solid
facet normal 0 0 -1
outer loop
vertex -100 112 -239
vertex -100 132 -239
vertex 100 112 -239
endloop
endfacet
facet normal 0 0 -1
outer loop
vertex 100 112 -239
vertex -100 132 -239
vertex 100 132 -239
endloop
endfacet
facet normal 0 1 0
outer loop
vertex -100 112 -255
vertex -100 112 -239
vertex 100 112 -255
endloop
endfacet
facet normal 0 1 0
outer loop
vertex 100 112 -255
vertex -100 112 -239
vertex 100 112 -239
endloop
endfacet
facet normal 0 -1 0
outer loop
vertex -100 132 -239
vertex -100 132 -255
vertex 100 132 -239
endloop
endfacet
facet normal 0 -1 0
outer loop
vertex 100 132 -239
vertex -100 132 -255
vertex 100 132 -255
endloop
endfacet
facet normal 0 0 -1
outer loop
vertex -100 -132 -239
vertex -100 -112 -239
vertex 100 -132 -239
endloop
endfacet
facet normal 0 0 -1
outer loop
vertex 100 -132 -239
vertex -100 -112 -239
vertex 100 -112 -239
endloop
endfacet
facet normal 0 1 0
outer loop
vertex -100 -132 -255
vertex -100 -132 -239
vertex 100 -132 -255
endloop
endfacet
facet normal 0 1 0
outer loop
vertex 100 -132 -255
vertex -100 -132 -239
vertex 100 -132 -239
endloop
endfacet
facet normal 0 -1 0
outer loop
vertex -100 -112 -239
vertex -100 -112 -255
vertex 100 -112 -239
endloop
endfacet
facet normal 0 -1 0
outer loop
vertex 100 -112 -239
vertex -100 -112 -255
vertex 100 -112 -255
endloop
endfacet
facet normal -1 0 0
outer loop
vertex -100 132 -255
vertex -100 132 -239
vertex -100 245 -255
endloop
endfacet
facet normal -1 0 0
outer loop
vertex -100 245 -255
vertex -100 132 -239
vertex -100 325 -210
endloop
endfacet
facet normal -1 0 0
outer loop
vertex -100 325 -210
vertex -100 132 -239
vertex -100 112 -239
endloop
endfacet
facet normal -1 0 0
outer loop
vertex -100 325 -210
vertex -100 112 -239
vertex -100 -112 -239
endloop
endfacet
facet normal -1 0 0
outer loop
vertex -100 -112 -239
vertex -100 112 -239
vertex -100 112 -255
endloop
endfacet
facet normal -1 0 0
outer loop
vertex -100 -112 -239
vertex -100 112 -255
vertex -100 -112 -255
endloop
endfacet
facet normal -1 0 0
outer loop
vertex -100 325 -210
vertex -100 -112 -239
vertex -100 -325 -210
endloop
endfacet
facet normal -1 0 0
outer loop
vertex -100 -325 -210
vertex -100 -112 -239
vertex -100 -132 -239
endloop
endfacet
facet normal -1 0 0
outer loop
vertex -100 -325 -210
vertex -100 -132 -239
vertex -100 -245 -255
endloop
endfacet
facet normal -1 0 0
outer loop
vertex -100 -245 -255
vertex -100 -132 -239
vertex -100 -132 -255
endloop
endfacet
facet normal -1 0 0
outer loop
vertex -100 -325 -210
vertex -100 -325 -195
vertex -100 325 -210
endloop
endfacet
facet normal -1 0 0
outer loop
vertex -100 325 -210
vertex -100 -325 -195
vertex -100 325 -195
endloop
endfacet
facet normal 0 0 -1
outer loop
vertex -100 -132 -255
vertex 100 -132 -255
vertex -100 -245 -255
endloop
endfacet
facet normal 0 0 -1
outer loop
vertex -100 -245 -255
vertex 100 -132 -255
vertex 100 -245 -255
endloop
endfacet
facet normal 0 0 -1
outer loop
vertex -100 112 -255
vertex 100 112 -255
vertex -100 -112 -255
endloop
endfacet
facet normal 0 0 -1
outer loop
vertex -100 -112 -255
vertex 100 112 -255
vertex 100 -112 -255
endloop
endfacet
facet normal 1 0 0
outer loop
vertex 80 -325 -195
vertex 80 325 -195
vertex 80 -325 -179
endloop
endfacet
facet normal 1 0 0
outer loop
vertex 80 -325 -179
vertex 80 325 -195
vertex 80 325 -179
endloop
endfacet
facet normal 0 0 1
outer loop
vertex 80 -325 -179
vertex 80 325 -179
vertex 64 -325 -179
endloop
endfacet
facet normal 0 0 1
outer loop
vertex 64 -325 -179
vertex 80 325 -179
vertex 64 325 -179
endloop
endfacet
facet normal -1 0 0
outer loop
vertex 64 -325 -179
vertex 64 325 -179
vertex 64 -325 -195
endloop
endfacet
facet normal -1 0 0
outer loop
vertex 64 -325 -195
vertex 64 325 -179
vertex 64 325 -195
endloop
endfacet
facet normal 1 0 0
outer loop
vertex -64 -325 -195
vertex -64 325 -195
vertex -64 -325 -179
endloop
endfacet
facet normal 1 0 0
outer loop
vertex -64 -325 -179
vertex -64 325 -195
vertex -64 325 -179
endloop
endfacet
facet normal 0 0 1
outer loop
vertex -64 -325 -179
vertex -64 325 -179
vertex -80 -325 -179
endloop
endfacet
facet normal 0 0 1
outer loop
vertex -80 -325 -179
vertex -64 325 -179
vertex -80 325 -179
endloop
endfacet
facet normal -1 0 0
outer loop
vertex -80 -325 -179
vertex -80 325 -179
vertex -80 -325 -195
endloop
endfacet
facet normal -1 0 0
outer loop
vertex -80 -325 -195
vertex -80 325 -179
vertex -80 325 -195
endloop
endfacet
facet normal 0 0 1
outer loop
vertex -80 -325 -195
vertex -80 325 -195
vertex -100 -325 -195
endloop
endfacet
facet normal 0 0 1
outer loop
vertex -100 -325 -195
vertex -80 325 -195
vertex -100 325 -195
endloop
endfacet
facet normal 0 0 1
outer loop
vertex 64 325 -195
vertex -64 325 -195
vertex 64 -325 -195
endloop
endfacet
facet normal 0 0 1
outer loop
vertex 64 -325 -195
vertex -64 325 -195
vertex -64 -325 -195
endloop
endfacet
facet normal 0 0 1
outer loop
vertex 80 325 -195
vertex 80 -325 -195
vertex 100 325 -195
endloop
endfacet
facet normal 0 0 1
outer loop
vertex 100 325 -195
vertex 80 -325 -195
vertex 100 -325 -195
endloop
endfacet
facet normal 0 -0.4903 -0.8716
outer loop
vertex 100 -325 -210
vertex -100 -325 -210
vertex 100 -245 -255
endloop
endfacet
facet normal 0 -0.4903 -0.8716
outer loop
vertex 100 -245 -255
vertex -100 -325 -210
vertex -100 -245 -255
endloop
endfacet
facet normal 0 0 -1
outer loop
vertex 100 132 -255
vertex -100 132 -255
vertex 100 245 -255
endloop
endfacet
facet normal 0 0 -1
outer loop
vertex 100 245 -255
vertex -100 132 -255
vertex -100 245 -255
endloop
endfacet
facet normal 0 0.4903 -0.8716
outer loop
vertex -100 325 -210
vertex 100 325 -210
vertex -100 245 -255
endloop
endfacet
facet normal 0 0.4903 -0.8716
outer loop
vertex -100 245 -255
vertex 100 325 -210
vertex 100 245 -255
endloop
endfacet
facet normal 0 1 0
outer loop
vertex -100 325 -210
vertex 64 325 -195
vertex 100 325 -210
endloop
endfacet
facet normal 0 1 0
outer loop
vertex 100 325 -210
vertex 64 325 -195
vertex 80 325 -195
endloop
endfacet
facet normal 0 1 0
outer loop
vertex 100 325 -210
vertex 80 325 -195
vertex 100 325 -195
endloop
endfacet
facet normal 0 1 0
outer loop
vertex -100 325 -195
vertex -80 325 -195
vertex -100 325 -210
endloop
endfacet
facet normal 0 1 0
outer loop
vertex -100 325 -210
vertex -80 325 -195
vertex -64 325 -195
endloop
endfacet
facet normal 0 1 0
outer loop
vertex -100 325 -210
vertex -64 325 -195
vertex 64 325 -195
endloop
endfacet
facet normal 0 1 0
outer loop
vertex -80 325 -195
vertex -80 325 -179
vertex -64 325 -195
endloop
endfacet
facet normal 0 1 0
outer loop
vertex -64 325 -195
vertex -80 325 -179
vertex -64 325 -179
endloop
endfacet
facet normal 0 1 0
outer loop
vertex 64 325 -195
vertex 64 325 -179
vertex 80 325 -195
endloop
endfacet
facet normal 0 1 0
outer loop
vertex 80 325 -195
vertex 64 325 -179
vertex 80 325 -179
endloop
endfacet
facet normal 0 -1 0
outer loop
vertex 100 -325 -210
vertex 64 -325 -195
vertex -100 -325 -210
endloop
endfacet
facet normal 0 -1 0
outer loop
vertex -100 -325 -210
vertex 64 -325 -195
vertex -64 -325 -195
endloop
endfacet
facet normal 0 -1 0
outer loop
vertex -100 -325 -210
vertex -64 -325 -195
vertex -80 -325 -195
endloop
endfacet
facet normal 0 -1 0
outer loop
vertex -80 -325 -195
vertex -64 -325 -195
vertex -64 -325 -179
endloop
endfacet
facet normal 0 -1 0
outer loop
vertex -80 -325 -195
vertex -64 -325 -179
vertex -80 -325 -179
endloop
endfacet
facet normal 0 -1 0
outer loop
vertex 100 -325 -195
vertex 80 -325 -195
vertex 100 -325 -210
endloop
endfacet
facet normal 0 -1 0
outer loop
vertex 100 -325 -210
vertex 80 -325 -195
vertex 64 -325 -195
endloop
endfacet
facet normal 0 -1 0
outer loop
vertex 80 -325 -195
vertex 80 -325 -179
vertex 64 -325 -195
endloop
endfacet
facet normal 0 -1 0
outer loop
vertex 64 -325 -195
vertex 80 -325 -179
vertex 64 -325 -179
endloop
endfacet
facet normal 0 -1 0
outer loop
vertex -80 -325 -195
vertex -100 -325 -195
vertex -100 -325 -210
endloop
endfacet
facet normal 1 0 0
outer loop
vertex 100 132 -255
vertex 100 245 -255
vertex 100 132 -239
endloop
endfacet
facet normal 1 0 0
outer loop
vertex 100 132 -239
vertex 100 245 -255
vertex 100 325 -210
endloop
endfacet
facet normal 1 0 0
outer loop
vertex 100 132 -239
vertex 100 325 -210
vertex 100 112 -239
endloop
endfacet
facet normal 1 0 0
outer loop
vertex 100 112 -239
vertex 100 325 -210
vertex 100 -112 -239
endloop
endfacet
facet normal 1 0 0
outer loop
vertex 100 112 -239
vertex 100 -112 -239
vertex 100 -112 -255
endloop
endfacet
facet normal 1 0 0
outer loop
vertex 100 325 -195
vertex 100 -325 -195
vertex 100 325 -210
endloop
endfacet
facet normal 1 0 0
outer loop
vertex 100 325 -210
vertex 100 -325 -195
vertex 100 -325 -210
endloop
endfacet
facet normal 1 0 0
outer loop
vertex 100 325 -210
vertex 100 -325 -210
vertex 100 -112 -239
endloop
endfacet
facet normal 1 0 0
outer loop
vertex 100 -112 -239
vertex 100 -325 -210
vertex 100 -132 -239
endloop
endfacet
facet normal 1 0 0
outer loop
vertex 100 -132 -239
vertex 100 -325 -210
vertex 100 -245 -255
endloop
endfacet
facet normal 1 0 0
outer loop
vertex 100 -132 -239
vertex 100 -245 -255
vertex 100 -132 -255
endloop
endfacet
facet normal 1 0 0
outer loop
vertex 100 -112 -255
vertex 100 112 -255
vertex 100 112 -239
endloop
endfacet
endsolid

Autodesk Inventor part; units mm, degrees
ref_plane "YZ Plane" through (0, 0, 0) normal (1, 0, 0) x (0, 1, 0)
ref_plane "XZ Plane" through (0, 0, 0) normal (0, 1, 0) x (-1, 0, 0)
ref_plane "XY Plane" through (0, 0, 0) normal (0, 0, 1) x (1, 0, 0)
sketch "Sketch1" plane through (0, 0, 0) normal (0, 1, 0) x (-1, 0, 0)
  line L0 (100, -195) -> (-100, -195)
  line L1 (-100, -195) -> (-100, -255)
  line L2 (-100, -255) -> (100, -255)
  line L3 (100, -255) -> (100, -195)
  line L4 (0, 66.9735) -> (0, -172.2265)
  point P0 (0, 0)
  dimension "d0" = 200
  dimension "d1" = 60
  dimension "d2" = 195
extrude "Extrusion1" add sketch "Sketch1" along normal mid plane 650
chamfer "Chamfer1" distance 45 distance2 80 1 edges at (0, 325, -255) measured on face at (33.3333, 325, -215)
chamfer "Chamfer2" distance 45 distance2 80 1 edges at (0, -325, -255) measured on face at (33.3333, -325, -215)
sketch "Sketch2" plane through (0, -325, 0) normal (0, -1, 0) x (1, 0, 0)
  line L0 (100, -195) -> (-100, -195) projected
  line L1 (-80, -179) -> (-64, -179)
  line L2 (-64, -179) -> (-64, -195)
  line L3 (-64, -195) -> (-80, -195)
  line L4 (-80, -195) -> (-80, -179)
  line L5 (-100, -195) -> (-100, -210) projected
  line L6 (0, 0) -> (0, -427.5887)
  line L7 (80, -179) -> (64, -179)
  line L8 (64, -179) -> (64, -195)
  line L9 (64, -195) -> (80, -195)
  line L10 (80, -195) -> (80, -179)
  dimension "d11" = 20
  dimension "d12" = 16
  dimension "d13" = 16
extrude "Extrusion2" add sketch "Sketch2" against normal blind 650
sketch "Sketch3" plane through (100, -325, -195) normal (1, 0, 0) x (0, 0, -1)
  line L0 (-195, 325) -> (152.733, 325)
  line L1 (60, 80) -> (60, 570) projected
  line L2 (60, 193) -> (44, 193)
  line L3 (44, 193) -> (44, 213)
  line L4 (44, 213) -> (60, 213)
  line L5 (60, 213) -> (60, 193)
  line L6 (60, 457) -> (44, 457)
  line L7 (44, 457) -> (44, 437)
  line L8 (44, 437) -> (60, 437)
  line L9 (60, 437) -> (60, 457)
  point P0 (60, 437)
  point P1 (60, 213)
  dimension "d16" = 224
  dimension "d17" = 16
  dimension "d18" = 20
extrude "Extrusion3" cut sketch "Sketch3" against normal through all
properties part number "X_axis"
